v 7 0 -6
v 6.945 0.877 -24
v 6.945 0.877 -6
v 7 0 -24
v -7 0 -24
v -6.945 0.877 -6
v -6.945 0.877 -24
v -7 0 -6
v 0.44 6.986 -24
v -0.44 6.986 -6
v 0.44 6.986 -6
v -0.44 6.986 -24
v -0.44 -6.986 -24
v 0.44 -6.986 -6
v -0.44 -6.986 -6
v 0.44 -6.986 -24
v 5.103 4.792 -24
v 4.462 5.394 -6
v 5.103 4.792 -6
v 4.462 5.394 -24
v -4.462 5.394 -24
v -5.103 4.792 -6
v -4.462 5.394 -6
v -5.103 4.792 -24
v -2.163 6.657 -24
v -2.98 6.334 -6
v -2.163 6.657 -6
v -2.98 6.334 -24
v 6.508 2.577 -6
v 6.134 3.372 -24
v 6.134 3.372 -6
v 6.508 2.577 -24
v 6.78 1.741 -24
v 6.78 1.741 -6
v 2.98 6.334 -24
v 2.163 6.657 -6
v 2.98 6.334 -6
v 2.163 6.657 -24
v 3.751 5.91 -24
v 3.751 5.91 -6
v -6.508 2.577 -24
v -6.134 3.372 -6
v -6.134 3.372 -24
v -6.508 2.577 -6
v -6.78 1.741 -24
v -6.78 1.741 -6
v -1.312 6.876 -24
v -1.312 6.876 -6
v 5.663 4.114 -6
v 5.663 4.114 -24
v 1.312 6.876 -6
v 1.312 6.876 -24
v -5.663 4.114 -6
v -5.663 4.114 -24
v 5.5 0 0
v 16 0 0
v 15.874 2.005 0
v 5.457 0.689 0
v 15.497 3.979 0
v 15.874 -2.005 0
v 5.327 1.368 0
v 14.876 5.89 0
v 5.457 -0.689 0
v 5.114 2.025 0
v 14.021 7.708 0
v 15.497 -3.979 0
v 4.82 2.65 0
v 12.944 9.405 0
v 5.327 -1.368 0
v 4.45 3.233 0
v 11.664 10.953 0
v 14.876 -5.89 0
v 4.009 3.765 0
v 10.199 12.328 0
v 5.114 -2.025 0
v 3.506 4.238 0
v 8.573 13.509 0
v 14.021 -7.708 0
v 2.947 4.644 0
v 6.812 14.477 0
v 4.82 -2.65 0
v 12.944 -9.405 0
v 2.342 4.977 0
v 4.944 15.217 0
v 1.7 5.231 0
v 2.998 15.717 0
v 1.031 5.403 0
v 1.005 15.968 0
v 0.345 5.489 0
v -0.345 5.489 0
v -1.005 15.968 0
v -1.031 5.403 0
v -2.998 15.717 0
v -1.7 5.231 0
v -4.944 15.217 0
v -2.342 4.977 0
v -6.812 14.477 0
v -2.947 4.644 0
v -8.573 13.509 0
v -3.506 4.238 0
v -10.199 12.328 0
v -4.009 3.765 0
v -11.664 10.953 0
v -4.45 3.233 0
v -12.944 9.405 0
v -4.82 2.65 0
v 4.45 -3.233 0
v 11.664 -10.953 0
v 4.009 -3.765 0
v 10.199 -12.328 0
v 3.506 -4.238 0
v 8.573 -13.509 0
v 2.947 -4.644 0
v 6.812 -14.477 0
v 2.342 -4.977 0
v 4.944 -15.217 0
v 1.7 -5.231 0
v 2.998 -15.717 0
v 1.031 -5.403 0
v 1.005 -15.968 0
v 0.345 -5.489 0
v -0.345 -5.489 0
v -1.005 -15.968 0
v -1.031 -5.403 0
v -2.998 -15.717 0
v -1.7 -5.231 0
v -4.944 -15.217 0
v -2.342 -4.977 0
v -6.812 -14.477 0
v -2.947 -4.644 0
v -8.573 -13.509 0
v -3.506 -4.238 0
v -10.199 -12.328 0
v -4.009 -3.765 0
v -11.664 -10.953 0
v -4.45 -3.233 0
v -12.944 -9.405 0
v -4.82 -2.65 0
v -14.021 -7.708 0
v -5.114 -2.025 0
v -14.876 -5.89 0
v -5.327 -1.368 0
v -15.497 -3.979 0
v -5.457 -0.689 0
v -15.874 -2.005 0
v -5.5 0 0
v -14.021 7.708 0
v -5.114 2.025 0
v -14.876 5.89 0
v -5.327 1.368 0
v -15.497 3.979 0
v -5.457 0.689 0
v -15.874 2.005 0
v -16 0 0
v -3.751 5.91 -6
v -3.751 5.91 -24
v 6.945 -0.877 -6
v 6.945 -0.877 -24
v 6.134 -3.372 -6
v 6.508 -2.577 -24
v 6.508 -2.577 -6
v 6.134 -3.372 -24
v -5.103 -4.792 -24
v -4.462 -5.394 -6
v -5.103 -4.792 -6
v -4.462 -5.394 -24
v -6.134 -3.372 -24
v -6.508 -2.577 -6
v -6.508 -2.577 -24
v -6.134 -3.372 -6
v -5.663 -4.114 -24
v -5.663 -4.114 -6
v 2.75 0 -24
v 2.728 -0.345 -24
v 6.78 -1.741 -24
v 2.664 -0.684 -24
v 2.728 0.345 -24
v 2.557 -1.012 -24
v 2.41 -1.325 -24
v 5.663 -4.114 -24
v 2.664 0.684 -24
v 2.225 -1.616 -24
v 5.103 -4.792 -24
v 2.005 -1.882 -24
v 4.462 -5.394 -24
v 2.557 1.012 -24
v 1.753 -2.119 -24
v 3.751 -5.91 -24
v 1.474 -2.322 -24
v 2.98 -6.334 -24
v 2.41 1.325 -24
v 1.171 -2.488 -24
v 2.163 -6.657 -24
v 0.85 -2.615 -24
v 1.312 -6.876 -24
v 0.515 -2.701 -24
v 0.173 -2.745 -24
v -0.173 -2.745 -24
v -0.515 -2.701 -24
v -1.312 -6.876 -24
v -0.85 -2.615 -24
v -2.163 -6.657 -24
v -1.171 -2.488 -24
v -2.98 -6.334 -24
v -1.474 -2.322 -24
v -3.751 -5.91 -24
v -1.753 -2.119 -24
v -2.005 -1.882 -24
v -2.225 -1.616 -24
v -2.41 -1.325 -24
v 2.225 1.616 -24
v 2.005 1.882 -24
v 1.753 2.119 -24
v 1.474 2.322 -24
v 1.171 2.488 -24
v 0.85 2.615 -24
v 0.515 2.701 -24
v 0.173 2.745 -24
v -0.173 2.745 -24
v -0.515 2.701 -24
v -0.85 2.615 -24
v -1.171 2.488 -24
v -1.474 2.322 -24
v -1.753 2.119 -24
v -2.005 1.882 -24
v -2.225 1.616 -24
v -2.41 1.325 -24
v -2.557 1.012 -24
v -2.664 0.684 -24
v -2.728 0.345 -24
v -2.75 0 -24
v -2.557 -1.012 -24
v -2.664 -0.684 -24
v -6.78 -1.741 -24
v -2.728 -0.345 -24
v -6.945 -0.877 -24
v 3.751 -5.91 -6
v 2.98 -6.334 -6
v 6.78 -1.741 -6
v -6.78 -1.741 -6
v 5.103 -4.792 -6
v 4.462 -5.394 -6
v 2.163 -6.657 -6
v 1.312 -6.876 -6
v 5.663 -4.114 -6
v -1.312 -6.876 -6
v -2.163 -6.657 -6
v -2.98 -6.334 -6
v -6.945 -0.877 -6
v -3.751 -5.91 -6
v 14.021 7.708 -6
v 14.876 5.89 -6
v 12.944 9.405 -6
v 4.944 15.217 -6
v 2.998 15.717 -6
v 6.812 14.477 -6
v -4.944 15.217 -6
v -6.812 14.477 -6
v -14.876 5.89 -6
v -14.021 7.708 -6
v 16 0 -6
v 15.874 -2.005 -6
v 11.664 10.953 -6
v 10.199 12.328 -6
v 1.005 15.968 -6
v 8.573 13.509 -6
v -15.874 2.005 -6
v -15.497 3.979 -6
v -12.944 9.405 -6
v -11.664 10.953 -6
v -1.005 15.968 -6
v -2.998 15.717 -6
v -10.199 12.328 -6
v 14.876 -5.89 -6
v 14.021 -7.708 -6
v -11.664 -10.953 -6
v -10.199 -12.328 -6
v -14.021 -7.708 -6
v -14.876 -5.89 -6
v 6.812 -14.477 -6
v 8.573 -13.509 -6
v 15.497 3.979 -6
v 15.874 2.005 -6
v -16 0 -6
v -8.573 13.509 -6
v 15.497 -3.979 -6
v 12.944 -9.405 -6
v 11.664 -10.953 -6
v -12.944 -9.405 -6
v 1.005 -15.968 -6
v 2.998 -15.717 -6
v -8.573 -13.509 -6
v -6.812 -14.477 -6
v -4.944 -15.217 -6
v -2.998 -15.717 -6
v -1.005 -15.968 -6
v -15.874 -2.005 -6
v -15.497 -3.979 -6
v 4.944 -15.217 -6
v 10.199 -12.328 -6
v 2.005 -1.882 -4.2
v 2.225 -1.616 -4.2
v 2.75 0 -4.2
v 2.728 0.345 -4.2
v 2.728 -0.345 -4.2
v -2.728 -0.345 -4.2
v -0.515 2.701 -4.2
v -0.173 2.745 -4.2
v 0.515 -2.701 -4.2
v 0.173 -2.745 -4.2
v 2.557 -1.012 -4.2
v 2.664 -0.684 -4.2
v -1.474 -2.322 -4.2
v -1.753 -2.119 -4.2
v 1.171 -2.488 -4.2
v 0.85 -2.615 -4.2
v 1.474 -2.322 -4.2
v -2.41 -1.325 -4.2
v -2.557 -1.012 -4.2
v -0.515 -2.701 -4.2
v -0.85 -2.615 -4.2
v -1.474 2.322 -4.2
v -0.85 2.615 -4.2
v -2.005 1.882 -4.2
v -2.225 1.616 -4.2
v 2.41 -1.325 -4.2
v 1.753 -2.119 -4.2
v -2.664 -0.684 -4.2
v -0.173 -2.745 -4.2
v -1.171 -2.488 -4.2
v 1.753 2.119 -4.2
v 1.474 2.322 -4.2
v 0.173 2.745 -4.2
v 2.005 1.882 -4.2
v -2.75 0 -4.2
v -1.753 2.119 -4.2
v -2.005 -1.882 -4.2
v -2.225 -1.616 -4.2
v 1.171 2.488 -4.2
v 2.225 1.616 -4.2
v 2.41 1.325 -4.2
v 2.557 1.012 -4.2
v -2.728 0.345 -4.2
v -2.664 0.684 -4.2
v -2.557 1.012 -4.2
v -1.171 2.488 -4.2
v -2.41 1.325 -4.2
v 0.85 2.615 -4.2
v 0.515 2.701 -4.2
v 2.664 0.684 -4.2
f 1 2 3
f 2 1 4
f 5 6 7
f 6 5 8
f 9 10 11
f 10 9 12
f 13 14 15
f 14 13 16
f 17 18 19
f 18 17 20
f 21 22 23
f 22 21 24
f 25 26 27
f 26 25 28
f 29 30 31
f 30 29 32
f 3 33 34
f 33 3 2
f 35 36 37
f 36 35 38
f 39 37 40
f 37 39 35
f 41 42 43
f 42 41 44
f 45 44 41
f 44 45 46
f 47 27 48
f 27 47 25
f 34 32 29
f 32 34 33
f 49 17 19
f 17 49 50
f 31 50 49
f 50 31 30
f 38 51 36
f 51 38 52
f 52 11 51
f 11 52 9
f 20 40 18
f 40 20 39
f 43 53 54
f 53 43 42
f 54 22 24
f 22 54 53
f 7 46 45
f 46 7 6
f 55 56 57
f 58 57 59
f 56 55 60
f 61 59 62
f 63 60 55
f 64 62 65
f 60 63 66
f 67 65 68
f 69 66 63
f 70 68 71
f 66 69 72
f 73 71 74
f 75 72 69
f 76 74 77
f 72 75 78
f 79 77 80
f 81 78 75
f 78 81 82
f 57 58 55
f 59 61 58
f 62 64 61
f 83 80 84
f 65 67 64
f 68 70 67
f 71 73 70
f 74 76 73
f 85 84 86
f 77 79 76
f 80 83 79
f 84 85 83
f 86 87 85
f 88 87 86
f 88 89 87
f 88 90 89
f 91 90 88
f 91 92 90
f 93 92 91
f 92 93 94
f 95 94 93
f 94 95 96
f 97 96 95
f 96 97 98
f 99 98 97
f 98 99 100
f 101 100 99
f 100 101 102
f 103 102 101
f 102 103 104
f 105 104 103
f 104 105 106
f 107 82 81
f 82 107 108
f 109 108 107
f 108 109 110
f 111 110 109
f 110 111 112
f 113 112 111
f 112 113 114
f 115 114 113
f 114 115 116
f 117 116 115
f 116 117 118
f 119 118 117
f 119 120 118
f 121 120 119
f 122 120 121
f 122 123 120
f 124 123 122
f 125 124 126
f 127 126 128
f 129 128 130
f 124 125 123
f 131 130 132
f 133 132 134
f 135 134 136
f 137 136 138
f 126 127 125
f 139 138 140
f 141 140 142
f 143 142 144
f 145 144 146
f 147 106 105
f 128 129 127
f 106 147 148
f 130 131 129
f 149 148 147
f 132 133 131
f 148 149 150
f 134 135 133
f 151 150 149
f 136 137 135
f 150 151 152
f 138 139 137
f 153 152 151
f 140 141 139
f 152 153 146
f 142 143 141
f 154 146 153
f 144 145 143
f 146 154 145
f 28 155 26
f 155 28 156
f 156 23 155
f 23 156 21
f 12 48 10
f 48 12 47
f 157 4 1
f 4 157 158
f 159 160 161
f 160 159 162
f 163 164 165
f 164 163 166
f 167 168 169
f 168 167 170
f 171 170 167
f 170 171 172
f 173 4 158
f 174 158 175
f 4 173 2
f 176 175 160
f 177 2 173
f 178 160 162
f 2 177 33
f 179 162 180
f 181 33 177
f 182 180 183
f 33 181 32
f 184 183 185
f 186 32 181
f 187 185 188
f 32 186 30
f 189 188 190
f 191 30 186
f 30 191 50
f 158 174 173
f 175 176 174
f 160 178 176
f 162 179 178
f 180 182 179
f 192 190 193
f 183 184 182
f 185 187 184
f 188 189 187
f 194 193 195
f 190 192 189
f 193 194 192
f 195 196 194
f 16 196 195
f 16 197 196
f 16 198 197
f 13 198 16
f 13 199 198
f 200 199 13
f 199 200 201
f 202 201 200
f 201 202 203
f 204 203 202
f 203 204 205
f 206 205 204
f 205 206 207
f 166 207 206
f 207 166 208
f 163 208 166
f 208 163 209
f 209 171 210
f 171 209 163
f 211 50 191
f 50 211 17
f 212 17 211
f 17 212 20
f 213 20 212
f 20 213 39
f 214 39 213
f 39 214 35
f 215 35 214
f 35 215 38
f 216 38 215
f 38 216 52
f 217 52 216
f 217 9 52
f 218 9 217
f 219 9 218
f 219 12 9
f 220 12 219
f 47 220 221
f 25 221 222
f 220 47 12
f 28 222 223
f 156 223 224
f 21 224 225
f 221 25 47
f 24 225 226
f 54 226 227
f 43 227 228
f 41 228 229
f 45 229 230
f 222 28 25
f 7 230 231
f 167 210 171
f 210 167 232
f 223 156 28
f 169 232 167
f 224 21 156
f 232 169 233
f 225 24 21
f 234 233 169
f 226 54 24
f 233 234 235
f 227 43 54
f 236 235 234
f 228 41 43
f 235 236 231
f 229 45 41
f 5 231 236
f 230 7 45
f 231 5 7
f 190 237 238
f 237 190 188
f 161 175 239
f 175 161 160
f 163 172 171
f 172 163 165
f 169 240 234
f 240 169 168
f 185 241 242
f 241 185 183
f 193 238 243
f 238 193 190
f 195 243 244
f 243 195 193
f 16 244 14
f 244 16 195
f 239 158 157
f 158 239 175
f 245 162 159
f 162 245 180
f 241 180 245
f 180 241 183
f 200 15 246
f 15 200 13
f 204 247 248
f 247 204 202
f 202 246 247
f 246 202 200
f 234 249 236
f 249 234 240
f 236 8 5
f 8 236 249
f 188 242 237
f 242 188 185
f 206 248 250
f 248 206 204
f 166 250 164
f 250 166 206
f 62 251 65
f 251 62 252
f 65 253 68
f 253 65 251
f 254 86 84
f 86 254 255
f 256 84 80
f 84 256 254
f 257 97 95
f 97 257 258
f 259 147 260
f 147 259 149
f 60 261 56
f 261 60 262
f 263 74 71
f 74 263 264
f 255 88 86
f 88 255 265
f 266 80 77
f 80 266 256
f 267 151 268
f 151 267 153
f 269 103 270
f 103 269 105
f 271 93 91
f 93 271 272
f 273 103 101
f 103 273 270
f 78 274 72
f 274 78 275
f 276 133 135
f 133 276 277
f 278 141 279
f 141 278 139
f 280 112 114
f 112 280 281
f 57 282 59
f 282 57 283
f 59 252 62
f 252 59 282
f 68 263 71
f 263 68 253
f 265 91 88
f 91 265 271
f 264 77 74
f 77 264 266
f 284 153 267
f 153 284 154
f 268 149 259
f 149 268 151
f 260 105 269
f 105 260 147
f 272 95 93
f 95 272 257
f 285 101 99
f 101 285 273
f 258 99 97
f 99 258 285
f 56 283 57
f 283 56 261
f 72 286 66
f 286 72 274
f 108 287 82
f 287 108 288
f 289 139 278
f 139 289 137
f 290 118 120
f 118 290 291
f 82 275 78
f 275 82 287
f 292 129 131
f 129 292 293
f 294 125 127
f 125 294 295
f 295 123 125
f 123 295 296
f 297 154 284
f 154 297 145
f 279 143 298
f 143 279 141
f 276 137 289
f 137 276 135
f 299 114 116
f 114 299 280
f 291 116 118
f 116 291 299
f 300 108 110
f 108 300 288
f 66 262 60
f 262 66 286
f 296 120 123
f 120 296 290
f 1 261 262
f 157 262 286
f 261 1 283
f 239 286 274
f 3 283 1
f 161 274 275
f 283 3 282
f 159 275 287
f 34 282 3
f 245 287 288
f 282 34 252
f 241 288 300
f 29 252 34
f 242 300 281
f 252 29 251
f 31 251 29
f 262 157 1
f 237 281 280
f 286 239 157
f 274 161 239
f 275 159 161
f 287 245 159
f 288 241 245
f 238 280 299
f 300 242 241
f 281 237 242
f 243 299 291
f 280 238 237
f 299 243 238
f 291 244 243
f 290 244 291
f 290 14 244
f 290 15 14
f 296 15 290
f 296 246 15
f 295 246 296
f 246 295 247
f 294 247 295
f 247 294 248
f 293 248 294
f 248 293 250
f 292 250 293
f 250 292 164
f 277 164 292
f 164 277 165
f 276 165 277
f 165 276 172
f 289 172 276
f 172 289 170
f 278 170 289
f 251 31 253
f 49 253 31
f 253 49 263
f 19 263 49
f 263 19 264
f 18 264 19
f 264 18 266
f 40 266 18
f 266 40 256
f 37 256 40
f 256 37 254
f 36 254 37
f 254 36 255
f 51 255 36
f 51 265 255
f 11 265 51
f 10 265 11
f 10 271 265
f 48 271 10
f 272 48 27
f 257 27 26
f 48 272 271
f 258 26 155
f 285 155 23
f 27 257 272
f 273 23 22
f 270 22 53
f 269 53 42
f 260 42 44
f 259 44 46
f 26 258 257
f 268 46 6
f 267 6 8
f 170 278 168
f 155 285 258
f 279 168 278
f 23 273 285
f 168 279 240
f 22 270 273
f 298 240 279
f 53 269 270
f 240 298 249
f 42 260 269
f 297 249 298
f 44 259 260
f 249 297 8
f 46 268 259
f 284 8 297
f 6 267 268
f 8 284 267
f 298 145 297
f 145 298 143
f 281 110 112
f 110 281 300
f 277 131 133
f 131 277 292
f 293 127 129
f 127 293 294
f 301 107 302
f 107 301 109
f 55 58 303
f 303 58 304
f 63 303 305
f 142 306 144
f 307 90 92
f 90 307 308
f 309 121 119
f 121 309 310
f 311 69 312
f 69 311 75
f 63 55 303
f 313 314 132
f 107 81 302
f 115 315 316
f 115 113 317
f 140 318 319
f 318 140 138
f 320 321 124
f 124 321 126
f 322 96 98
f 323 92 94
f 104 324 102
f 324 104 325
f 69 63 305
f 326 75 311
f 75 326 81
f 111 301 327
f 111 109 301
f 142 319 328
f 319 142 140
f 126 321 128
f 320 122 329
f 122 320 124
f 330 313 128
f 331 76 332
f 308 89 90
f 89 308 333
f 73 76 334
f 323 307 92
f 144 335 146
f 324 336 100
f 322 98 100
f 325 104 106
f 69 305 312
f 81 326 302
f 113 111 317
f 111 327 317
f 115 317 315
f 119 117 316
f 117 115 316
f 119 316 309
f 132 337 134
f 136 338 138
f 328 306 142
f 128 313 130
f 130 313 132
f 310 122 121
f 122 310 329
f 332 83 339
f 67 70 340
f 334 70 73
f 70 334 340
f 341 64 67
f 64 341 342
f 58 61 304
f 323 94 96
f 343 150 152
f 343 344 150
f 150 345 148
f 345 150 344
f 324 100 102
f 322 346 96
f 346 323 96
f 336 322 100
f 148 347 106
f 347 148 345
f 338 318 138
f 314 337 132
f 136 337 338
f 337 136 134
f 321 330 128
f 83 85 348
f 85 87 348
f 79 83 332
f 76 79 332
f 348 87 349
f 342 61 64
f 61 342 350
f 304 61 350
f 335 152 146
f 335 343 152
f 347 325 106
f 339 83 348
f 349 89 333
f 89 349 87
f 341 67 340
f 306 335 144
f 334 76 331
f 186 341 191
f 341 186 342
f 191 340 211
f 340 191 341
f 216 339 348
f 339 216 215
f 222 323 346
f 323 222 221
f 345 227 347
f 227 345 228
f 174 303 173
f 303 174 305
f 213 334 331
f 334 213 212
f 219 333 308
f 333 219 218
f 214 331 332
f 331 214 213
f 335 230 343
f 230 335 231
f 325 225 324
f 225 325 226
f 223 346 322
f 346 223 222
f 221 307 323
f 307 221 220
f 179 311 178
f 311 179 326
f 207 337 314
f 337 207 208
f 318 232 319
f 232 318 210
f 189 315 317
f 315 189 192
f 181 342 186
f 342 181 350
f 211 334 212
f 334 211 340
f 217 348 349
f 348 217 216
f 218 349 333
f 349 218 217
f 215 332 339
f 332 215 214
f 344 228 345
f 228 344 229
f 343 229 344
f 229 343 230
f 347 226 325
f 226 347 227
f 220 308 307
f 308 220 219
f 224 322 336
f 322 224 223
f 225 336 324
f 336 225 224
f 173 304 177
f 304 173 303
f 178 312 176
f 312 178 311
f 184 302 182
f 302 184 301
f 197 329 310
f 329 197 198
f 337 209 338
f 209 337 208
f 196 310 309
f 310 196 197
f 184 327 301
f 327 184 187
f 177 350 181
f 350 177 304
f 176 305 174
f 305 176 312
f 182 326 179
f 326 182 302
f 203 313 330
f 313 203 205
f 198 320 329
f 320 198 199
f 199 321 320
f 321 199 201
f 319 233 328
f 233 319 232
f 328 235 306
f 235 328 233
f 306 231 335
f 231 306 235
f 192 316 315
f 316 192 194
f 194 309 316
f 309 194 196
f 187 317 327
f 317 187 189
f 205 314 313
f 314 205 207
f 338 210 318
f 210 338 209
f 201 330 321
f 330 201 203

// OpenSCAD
$fn = 50;


difference() {
	union() {
		translate(v = [0, 0, -24.0000000000]) {
			cylinder(h = 24, r = 7.0000000000);
		}
		translate(v = [0, 0, -6.0000000000]) {
			cylinder(h = 6, r = 16.0000000000);
		}
	}
	union() {
		translate(v = [0, 0, 0]) {
			rotate(a = [0, 0, 0]) {
				difference() {
					union() {
						#translate(v = [0, 0, -24.0000000000]) {
							cylinder(h = 24, r = 2.2500000000);
						}
						#translate(v = [0, 0, -4.2000000000]) {
							cylinder(h = 4.2000000000, r = 7.0000000000, r1 = 2.7500000000, r2 = 5.5000000000);
						}
						#translate(v = [0, 0, -24.0000000000]) {
							cylinder(h = 24, r = 2.7500000000);
						}
						#translate(v = [0, 0, -24.0000000000]) {
							cylinder(h = 24, r = 2.2500000000);
						}
					}
					union();
				}
			}
		}
	}
}
